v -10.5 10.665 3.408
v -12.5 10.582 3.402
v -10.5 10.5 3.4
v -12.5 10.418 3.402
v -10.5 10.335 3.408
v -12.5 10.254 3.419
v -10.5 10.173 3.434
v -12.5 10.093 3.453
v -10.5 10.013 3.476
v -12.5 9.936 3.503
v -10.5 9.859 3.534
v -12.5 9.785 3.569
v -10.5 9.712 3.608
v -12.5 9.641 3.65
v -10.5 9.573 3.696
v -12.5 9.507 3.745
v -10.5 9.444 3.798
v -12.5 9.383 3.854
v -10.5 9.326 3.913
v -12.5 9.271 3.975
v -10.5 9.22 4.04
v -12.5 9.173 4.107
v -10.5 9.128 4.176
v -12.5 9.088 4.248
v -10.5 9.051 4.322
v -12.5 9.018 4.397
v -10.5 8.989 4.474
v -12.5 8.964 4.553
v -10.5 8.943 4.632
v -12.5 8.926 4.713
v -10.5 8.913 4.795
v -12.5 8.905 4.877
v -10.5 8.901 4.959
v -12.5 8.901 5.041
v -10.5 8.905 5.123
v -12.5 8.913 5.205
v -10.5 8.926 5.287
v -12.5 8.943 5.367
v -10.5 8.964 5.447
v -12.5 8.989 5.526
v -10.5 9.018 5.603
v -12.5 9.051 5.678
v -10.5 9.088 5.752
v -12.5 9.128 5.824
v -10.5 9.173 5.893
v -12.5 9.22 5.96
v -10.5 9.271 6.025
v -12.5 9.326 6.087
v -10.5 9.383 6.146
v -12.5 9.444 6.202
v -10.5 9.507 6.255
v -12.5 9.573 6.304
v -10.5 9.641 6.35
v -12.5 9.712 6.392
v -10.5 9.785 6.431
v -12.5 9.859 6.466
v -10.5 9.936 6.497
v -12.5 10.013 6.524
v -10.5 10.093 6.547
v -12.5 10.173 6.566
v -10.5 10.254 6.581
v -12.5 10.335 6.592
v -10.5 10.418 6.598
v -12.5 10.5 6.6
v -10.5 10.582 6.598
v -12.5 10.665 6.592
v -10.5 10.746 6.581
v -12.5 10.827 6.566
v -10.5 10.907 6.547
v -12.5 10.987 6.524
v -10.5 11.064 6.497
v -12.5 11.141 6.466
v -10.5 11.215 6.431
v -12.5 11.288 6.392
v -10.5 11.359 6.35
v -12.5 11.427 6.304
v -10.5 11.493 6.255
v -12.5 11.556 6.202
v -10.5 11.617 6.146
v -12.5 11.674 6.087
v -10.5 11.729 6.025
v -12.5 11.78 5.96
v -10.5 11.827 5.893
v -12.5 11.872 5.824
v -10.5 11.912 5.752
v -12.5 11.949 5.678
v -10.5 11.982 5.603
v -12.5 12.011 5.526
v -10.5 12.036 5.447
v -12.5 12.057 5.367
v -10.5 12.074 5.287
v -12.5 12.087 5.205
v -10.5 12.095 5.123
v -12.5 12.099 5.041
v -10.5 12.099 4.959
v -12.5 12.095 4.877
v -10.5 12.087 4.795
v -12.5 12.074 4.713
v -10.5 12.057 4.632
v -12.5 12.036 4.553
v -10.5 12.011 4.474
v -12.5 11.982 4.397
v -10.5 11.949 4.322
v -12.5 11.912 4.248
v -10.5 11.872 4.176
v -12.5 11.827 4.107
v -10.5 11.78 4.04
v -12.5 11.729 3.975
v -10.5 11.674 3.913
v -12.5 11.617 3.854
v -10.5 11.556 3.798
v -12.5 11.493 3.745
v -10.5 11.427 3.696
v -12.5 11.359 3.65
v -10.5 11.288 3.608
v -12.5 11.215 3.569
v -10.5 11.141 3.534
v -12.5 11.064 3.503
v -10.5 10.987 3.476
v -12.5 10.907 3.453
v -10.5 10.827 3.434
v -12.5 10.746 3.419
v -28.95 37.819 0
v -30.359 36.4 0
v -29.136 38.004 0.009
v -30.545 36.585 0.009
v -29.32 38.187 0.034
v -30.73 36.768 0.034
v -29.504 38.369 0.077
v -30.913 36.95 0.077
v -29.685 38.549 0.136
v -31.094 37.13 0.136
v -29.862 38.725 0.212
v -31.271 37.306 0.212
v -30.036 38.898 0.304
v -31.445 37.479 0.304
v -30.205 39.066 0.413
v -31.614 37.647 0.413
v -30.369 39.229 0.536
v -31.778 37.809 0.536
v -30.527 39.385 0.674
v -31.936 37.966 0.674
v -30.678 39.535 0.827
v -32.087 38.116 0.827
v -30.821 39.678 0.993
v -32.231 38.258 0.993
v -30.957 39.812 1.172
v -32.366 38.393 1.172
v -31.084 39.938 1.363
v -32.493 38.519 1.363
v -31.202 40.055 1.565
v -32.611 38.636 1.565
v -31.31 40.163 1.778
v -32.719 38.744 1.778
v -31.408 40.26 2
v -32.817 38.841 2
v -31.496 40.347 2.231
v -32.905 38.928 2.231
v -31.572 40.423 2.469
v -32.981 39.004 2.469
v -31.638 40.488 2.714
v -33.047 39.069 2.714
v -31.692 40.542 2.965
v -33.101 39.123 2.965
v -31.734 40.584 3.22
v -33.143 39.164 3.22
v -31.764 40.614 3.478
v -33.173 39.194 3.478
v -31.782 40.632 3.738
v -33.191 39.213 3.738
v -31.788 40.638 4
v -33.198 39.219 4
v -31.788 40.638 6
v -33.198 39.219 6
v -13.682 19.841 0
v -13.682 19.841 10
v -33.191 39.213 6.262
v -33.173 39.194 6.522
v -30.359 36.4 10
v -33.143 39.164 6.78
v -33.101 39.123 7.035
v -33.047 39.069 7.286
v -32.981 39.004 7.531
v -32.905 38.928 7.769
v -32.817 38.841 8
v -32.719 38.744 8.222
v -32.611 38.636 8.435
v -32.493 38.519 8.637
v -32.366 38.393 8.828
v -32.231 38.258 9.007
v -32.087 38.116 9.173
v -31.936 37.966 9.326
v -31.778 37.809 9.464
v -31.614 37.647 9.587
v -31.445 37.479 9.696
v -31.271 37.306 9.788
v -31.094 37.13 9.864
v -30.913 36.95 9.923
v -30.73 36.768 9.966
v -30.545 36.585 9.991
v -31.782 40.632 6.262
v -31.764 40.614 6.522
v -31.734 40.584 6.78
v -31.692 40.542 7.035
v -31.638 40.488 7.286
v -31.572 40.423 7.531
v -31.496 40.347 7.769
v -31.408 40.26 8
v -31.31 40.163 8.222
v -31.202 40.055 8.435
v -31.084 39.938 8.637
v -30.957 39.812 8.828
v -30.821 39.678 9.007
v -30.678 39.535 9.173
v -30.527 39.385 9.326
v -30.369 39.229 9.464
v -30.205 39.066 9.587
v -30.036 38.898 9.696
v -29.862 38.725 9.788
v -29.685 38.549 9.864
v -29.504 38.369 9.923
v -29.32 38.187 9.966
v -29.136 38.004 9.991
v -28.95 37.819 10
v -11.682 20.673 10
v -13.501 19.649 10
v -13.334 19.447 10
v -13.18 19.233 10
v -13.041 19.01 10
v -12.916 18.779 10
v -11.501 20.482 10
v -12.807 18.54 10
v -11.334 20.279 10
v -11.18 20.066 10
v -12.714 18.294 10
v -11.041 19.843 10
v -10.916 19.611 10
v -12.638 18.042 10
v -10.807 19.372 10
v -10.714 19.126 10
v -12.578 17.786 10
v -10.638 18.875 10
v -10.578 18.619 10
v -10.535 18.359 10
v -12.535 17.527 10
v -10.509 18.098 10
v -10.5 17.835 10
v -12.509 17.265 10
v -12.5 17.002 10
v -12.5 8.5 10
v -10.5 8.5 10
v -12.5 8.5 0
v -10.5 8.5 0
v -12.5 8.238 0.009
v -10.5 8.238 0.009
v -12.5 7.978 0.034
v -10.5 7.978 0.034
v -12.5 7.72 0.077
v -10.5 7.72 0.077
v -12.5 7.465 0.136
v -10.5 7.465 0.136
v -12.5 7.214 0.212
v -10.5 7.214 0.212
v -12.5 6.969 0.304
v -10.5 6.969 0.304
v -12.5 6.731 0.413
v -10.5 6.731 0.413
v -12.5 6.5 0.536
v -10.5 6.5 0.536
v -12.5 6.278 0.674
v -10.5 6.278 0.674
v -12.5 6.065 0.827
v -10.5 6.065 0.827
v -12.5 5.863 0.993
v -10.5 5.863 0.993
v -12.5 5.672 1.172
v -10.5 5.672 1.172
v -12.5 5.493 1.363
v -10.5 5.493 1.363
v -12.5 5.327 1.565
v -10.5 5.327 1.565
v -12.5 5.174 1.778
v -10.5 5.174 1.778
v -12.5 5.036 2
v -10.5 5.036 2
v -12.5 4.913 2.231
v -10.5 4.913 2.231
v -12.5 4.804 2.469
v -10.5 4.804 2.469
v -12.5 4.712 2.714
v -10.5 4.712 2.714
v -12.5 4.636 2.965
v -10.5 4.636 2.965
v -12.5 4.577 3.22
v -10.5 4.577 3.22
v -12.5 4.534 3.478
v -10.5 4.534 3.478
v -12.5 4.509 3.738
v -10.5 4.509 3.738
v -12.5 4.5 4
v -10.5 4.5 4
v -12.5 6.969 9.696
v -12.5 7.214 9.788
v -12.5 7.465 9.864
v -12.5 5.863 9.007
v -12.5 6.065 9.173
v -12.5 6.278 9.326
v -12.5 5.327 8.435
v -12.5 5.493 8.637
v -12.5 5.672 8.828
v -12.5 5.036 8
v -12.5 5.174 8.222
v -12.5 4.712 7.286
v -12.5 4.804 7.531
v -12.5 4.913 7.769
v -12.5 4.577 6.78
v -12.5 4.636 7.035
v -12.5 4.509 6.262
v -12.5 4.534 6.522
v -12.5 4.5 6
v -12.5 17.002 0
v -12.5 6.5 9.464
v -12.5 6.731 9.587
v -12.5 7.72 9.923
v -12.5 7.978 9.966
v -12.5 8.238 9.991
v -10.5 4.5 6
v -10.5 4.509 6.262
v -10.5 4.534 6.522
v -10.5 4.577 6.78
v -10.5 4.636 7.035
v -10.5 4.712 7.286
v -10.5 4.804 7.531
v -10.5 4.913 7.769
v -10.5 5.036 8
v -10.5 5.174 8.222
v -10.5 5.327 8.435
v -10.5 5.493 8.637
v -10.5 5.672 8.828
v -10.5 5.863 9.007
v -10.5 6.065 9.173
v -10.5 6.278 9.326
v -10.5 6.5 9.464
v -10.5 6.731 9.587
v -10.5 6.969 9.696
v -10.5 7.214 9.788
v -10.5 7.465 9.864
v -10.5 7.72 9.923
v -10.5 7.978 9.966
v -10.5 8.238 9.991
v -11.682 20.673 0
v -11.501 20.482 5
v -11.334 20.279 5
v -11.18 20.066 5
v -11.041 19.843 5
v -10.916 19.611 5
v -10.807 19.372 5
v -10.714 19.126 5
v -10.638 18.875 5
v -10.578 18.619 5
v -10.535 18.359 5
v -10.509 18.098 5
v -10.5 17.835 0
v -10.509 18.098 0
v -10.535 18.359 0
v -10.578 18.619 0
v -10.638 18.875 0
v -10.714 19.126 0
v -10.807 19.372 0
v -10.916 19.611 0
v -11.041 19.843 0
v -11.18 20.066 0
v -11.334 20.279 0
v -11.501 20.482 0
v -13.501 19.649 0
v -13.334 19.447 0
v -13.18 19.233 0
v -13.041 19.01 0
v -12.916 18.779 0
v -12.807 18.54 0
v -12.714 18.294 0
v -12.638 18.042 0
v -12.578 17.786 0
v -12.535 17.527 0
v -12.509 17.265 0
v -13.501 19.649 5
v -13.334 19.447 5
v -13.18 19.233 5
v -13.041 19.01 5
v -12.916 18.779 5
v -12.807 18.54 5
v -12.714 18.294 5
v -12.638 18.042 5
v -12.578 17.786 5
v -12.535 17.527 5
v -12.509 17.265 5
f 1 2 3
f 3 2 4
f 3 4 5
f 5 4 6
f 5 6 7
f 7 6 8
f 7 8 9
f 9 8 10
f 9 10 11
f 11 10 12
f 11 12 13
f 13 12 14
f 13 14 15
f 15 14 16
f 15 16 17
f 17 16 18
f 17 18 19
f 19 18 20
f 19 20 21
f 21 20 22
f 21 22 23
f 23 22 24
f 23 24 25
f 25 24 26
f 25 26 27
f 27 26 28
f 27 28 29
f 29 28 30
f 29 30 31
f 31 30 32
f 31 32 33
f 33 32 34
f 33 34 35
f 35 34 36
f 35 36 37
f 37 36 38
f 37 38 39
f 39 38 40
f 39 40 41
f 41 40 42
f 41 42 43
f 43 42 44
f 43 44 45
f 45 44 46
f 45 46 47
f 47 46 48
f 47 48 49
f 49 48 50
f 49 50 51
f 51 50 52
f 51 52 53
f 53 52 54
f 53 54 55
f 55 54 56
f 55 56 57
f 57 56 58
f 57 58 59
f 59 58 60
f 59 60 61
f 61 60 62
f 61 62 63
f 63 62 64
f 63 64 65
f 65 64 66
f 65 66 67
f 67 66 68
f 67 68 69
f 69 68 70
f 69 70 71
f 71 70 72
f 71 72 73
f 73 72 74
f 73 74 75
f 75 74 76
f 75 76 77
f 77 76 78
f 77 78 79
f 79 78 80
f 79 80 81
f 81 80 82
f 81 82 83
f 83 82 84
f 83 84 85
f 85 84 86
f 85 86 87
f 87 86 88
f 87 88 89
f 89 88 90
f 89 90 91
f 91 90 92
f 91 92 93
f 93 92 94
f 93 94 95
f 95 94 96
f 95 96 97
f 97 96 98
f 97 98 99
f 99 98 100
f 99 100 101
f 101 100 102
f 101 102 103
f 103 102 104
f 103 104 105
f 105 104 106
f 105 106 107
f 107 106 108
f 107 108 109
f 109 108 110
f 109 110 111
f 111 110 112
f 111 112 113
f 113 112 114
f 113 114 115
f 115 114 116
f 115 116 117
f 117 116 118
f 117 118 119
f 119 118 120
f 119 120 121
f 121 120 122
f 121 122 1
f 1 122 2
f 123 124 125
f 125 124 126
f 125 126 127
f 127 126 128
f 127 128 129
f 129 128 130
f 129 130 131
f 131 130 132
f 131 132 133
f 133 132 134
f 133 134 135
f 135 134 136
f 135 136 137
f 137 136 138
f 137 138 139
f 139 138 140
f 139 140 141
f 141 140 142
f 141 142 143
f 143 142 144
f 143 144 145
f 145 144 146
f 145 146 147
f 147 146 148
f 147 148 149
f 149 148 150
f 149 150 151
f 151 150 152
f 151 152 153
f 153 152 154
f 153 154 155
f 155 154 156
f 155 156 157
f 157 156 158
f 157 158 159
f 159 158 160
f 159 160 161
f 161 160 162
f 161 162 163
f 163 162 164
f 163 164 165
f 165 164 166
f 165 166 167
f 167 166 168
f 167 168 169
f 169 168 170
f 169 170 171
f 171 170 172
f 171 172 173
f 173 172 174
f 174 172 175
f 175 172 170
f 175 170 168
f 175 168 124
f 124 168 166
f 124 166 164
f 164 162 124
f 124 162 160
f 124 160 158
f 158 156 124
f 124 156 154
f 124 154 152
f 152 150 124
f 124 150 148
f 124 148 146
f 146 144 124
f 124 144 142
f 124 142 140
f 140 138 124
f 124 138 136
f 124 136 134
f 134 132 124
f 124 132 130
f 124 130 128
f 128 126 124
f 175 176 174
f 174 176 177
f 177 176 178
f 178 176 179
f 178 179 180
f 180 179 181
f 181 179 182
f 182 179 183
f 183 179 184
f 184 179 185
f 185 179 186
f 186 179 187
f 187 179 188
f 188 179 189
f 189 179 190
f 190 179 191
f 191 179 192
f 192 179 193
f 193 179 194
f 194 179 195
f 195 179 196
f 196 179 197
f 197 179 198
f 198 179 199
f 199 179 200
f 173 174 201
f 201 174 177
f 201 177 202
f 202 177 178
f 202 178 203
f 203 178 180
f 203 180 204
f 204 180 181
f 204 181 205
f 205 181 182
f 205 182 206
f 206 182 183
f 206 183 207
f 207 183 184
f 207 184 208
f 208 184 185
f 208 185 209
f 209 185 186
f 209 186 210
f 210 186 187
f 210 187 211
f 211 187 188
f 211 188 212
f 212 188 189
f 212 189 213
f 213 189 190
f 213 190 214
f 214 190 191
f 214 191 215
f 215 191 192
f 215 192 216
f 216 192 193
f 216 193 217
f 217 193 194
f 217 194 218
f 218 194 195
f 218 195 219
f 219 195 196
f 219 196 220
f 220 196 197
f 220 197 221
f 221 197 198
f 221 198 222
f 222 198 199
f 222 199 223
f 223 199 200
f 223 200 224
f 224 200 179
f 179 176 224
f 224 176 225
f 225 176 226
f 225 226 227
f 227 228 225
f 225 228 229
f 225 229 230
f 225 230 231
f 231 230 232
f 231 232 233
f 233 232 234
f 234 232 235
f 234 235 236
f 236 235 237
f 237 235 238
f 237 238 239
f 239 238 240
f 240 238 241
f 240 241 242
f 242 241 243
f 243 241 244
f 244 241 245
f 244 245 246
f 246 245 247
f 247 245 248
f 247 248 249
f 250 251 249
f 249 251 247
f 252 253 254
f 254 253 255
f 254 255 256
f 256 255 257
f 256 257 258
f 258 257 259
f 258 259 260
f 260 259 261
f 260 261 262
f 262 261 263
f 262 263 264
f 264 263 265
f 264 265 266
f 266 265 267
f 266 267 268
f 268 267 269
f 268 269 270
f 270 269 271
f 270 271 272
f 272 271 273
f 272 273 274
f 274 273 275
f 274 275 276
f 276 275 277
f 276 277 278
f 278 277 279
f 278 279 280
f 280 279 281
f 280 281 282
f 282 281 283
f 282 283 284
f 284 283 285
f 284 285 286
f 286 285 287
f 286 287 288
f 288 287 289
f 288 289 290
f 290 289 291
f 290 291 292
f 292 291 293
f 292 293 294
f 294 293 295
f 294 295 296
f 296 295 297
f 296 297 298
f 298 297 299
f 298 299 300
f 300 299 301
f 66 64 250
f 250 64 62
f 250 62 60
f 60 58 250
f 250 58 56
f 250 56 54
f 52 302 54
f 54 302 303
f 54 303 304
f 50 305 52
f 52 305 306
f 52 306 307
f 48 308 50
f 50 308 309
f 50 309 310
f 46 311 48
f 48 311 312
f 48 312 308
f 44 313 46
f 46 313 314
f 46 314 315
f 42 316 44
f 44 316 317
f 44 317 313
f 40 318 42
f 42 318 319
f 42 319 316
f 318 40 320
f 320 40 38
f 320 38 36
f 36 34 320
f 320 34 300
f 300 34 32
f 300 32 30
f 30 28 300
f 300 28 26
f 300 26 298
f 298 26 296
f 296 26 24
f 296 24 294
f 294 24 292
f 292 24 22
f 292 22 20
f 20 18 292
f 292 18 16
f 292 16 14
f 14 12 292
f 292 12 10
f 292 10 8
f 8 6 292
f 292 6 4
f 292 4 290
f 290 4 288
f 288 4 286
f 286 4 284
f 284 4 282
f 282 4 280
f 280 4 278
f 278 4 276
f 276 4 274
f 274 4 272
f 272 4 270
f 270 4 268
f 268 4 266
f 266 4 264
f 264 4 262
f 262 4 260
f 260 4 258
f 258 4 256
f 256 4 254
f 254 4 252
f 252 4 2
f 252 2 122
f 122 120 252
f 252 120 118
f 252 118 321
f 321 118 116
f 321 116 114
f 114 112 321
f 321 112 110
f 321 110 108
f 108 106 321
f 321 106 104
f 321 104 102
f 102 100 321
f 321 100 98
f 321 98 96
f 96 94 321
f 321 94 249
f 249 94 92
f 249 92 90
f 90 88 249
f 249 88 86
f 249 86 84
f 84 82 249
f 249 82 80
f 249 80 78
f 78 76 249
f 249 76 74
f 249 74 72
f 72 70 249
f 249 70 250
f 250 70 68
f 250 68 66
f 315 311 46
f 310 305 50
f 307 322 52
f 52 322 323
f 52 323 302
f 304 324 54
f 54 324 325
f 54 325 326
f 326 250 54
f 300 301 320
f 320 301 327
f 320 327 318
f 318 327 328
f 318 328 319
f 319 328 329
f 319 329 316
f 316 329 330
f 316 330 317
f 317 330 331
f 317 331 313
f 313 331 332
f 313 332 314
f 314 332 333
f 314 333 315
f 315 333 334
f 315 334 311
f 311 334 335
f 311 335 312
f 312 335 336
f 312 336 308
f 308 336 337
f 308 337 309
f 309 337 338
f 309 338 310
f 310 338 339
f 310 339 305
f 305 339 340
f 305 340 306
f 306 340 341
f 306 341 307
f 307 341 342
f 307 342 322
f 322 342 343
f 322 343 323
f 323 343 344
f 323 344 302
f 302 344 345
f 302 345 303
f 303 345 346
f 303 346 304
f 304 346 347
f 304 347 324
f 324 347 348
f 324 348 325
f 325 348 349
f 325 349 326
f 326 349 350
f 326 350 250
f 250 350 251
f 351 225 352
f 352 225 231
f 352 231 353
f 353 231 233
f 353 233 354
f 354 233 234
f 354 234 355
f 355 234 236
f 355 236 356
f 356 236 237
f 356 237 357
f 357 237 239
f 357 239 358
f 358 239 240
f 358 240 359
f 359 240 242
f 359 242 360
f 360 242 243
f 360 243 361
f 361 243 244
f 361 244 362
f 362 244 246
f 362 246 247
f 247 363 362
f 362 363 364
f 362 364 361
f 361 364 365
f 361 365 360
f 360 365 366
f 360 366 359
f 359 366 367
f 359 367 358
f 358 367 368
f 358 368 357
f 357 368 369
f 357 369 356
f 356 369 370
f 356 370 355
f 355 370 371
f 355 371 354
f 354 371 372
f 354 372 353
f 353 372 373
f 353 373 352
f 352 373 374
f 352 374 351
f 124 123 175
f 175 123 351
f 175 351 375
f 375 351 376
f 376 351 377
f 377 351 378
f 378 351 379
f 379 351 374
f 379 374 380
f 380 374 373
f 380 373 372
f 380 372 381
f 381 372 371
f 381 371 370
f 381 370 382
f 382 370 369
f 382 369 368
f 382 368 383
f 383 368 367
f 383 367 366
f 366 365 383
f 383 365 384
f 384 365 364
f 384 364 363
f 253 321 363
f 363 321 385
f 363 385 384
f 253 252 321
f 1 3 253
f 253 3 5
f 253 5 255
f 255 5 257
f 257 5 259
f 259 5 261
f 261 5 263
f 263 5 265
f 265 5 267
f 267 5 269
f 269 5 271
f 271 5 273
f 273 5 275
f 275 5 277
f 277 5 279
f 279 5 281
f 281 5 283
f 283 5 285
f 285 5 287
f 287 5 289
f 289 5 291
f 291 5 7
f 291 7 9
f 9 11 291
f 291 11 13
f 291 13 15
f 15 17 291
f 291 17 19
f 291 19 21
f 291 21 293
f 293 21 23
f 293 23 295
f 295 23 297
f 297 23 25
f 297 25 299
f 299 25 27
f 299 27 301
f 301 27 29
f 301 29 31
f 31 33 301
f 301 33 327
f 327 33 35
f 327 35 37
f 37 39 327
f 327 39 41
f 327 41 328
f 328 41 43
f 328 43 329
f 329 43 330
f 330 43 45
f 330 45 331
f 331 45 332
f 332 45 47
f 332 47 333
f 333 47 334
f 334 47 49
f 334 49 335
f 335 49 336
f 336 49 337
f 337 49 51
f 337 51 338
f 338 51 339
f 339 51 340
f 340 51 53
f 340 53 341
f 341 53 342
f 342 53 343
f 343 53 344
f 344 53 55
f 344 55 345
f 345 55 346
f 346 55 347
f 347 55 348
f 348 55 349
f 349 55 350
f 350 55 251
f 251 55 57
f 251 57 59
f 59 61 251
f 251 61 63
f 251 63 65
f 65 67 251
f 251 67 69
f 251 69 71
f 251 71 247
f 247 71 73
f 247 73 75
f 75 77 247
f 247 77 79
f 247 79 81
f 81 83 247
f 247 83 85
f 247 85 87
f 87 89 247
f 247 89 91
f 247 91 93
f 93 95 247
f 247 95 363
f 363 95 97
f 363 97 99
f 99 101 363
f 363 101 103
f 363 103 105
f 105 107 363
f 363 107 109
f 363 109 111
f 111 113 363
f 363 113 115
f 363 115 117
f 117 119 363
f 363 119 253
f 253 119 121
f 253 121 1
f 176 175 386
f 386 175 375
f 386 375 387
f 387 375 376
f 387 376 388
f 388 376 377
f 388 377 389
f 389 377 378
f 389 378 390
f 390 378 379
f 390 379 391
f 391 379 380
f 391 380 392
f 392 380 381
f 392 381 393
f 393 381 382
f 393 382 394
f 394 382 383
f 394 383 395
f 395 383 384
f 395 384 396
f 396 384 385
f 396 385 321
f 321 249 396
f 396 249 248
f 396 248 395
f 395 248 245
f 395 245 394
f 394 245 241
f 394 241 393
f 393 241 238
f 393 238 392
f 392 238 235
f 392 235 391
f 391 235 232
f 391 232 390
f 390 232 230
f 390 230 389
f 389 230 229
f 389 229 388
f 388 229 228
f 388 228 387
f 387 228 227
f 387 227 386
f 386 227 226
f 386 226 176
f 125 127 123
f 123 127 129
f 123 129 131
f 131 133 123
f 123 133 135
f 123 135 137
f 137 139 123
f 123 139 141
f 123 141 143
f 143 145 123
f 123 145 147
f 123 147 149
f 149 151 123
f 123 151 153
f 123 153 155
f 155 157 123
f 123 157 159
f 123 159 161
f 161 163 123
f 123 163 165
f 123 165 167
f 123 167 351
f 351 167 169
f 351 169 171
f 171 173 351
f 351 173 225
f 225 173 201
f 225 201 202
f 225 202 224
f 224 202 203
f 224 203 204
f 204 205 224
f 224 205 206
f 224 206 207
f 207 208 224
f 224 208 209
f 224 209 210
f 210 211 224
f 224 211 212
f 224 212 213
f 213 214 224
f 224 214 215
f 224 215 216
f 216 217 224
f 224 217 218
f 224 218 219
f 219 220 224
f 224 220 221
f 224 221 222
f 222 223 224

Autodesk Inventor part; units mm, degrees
ref_plane "YZ Plane" through (0, 0, 0) normal (1, 0, 0) x (0, 1, 0)
ref_plane "XZ Plane" through (0, 0, 0) normal (0, 1, 0) x (-1, 0, 0)
ref_plane "XY Plane" through (0, 0, 0) normal (0, 0, 1) x (1, 0, 0)
ref_plane "Arbeitsebene1" through (0, 0, 0) normal (0, 0, 1) x (1, 0, 0)
sketch "Skizze1" plane through (0, 0, 0) normal (0, 0, 1) x (1, 0, 0)
  line L0 (0, 10.5) -> (-10, 10.5)
  line L1 (0, 13.3) -> (-10, 13.3)
  line L2 (-10.5, 0) -> (-10.5, 117.8) projected
  line L3 (-10.5, 4.5) -> (-12.5, 4.5)
  line L4 (-12.5, 4.5) -> (-12.5, 19.5)
  line L5 (-12.5, 19.5) -> (-10.5, 19.5)
  line L6 (-10.5, 19.5) -> (-10.5, 4.5)
  line L7 (-10.5, 19.5) -> (-31.7883, 40.6378)
  line L8 (-31.7883, 40.6378) -> (-33.1975, 39.2186)
  line L9 (-33.1975, 39.2186) -> (-12.5, 18.6674)
  line L10 (-29.2442, 38.1116) -> (-8.6029, 58.9) construction
  line L11 (2, 58.9) -> (-12, 58.9)
  point P0 (0, 0)
  point P1 (-10.5, 19.5)
  dimension "d0" = 2
  dimension "d1" = 15
  dimension "d2" = 6
  dimension "d3" = 2
  dimension "d4" = 30
  dimension "d5" = 90
extrude "Extrusion1" add sketch "Skizze1" along normal blind 10
fillet "Rundung1" radius 4 6 edges at (-12.5, 18.6674, 5) (-10.5, 19.5, 5) (-11.5, 4.5, 10) (-11.5, 4.5, 0) (-32.4929, 39.9282, 10) (-32.4929, 39.9282, 0)
sketch "Skizze2" plane through (-12.5, 8.5, 0) normal (-1, 0, 0) x (0, 0, 1)
  arc A0 (0, 0) -> (4, -4) centre (4, 0) ccw projected
  line L0 (4, -4) -> (6, -4) projected
  arc A1 (6, -4) -> (10, 0) centre (6, 0) ccw projected
  line L1 (10, 8.5022) -> (10, 0) projected
  line L2 (0, 8.5022) -> (10, 8.5022) projected
  line L3 (0, 8.5022) -> (0, 0) projected
  circle A2 centre (5, 2) radius 1.6
  point P0 (0, -8.5)
  dimension "d9" = 3.2
  dimension "d10" = 6
extrude "Extrusion2" cut sketch "Skizze2" against normal blind 10 contours A2
properties part number "30_Cameraholder"
